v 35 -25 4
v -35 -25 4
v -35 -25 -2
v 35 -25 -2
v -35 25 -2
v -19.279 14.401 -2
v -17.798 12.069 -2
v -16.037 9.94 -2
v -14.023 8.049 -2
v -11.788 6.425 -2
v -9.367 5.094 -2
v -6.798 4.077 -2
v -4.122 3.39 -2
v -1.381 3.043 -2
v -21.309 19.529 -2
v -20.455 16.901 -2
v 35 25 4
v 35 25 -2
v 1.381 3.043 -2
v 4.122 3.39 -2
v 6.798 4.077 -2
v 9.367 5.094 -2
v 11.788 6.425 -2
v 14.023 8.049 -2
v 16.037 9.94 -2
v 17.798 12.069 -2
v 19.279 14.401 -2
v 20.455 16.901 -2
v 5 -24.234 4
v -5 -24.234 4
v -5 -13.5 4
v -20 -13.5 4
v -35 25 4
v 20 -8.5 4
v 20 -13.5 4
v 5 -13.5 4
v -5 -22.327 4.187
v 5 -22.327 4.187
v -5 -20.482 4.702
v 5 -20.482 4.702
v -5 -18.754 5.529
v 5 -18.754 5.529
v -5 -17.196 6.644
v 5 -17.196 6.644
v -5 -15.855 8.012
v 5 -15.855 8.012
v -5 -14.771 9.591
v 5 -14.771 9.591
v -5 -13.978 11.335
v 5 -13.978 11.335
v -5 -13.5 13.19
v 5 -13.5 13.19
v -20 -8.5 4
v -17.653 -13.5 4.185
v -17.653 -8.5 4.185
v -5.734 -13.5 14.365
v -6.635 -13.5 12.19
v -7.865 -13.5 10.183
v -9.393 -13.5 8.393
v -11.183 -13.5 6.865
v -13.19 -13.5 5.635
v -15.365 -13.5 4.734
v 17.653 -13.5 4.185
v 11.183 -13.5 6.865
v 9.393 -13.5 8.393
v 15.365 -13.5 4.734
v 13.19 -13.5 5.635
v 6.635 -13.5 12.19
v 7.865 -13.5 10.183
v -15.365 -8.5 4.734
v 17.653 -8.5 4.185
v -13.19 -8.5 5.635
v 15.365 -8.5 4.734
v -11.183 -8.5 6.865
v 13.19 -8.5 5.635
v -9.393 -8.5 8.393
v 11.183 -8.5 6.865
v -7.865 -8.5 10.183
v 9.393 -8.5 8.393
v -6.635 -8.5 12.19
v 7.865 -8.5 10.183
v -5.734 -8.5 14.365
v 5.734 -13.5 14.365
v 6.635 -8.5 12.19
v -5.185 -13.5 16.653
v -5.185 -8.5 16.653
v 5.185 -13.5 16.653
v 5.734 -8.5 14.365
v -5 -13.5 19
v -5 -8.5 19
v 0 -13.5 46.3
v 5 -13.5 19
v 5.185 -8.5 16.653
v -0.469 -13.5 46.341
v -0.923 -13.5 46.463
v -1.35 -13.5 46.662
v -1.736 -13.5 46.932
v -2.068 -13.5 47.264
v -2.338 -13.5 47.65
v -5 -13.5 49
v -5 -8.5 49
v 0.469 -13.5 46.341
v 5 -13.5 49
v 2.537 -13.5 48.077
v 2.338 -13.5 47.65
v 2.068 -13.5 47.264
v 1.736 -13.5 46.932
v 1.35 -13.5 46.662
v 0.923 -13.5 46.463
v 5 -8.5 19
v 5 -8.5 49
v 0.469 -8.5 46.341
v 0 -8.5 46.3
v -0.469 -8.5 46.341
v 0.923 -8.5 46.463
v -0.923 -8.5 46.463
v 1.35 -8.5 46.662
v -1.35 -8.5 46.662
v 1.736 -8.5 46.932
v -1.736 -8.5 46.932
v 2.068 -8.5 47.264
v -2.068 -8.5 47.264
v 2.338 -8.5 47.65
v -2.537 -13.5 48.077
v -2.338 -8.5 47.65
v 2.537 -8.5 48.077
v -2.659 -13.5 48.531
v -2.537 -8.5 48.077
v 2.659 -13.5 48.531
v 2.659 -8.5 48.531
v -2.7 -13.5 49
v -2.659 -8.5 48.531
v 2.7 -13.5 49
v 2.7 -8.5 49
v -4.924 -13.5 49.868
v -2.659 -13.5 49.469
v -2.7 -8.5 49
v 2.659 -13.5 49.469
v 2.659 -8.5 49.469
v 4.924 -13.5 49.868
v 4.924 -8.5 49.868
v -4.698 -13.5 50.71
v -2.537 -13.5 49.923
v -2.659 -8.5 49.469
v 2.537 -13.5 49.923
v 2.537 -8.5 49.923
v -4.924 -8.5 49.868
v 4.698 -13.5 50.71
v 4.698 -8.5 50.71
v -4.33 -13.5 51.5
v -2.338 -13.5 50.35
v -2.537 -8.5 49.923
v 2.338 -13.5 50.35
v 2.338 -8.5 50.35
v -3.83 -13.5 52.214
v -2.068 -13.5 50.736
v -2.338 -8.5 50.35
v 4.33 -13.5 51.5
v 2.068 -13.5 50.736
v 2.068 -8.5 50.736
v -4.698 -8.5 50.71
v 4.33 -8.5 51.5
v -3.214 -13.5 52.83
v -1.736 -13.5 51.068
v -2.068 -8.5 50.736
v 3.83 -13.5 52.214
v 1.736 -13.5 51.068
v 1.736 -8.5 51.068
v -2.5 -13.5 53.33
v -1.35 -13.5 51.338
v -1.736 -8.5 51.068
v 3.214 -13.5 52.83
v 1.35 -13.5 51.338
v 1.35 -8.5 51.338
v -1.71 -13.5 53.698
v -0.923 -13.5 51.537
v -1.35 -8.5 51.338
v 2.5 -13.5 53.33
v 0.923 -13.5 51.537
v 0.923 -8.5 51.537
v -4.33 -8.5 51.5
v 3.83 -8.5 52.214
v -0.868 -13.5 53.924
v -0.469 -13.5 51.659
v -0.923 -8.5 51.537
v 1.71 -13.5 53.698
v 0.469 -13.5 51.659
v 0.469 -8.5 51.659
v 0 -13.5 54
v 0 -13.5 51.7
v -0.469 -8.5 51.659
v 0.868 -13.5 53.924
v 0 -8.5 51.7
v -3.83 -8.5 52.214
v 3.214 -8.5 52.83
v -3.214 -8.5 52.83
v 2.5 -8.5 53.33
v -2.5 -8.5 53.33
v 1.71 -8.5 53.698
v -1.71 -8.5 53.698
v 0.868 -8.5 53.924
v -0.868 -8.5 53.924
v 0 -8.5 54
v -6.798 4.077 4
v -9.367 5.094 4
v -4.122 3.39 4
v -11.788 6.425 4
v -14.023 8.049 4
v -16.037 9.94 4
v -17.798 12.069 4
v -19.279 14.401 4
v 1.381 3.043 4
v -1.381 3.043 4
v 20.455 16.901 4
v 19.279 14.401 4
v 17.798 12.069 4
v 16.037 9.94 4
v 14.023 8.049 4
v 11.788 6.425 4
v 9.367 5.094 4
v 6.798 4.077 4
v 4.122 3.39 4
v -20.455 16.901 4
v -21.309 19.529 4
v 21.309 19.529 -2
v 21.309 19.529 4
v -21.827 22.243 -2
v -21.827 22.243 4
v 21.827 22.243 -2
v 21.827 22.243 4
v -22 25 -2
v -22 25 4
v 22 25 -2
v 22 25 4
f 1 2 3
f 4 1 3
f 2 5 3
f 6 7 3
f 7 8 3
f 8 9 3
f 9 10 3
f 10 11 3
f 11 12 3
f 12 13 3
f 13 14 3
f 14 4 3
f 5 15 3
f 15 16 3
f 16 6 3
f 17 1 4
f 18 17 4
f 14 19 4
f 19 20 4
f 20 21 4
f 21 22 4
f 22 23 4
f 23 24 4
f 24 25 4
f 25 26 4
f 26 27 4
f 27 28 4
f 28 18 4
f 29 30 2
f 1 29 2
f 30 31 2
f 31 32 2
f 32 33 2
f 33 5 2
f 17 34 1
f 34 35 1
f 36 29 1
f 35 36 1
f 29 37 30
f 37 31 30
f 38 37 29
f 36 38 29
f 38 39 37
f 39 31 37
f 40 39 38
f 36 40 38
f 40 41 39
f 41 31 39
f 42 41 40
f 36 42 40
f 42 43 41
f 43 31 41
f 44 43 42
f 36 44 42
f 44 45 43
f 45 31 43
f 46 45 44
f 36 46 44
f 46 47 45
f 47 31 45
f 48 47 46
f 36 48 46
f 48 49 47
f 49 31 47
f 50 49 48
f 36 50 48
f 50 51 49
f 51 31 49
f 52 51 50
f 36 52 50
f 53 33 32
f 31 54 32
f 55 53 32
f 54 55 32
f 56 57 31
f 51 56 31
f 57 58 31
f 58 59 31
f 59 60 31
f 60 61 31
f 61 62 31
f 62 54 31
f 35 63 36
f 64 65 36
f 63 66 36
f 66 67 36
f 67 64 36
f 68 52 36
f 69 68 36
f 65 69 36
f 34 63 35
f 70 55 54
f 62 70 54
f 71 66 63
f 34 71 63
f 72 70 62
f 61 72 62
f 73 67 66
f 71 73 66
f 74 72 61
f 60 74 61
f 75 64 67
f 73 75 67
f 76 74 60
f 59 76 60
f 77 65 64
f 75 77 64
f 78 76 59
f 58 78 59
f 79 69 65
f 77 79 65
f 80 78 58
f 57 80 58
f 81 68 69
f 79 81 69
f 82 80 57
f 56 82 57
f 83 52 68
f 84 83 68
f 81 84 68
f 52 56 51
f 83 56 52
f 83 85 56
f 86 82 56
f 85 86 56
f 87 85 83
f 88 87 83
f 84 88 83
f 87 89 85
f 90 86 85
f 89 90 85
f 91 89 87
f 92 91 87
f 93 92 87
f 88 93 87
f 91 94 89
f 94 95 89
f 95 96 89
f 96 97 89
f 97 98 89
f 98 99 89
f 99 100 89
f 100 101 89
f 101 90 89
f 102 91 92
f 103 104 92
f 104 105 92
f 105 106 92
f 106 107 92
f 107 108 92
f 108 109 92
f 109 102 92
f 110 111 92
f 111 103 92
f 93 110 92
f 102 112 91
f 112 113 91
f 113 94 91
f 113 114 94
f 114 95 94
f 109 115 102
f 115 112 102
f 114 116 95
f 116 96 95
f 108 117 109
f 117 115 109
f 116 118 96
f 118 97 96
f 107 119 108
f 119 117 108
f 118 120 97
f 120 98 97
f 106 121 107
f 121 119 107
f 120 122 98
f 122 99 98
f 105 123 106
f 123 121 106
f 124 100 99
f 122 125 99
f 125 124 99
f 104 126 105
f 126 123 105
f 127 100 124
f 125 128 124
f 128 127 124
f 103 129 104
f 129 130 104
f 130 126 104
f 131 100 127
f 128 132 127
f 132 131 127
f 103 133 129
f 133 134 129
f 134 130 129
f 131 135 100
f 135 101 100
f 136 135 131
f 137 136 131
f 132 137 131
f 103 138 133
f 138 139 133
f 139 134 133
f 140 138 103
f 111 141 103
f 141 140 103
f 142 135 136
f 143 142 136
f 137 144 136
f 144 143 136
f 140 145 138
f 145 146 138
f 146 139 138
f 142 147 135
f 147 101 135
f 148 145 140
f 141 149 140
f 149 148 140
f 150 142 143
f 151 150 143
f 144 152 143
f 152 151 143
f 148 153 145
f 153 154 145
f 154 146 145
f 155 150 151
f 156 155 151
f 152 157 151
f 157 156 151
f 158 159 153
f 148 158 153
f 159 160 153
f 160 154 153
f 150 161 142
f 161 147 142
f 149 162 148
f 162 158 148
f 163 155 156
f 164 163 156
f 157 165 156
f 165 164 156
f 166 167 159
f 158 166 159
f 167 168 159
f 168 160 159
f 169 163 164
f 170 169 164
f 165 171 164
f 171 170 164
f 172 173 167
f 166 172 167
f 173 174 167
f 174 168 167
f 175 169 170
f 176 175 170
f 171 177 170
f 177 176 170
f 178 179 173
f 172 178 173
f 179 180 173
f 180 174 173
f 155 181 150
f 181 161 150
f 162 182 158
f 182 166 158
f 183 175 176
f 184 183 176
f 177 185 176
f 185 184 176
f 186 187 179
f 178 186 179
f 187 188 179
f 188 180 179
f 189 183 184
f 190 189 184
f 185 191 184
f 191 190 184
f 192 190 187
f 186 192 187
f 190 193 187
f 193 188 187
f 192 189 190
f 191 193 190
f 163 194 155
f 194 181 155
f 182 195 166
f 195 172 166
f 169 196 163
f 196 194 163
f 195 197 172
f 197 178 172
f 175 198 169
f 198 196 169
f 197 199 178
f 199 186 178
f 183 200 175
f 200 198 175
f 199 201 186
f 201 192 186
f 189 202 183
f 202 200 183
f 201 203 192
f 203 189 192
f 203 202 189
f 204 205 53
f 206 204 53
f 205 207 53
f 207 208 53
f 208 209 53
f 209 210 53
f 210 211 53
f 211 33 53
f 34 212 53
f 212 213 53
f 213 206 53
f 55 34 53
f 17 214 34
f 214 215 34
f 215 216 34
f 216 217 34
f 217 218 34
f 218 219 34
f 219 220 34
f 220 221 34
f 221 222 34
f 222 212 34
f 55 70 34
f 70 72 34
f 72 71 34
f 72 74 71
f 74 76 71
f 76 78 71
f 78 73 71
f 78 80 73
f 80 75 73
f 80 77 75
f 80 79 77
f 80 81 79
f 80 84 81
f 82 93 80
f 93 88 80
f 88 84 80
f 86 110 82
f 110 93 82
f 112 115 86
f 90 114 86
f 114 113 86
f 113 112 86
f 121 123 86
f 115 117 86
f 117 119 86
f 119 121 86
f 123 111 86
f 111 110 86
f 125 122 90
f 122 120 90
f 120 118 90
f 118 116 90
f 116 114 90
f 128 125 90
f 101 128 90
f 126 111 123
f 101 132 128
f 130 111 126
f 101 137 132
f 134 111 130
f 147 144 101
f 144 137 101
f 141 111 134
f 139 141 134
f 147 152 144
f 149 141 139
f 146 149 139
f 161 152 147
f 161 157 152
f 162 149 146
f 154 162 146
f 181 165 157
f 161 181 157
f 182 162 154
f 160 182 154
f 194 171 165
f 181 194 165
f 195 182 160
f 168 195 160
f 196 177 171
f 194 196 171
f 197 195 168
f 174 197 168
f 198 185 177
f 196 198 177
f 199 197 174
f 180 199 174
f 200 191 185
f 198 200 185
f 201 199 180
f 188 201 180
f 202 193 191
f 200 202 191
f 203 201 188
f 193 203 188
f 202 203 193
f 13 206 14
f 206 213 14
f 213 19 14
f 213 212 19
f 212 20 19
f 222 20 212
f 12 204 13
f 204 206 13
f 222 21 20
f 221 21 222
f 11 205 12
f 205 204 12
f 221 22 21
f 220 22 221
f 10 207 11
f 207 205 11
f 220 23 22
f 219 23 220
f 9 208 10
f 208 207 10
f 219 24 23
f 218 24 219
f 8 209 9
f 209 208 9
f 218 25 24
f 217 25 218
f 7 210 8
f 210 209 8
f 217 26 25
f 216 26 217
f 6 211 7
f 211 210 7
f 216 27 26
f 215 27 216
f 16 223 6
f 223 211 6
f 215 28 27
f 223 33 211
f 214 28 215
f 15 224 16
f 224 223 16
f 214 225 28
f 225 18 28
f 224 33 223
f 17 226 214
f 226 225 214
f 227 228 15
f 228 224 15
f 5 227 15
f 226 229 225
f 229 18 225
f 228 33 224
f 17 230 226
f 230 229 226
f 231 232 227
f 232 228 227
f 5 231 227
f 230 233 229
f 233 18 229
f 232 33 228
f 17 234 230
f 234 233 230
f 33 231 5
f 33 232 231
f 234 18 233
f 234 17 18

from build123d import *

# Parameters (mm, degrees)
BOSS_EXTRUDE1_DEPTH      = 4
BOSS_EXTRUDE1_DEPTH_BACK = 2
SKETCH2_W                = 10
SKETCH2_H                = 5
BOSS_EXTRUDE2_DEPTH      = 50
FILLET1_RADIUS           = 5
FILLET1_LENGTH           = 5
SKETCH3_R                = 2.7
CUT_EXTRUDE1_DEPTH       = 35
BOSS_EXTRUDE3_DEPTH      = 5
BOSS_EXTRUDE5_START      = -5
BOSS_EXTRUDE5_DEPTH      = 10


# Read off the part's stored shape, not the designer's step: Boss-Extrude5
with BuildPart() as part:
    # Sketch1 → Boss-Extrude1 (new, two sides: drawn at the far end of the back side and taken through both)
    with BuildSketch(Plane.XY.offset(-BOSS_EXTRUDE1_DEPTH_BACK)):
        with BuildLine():
            Line((-35, -25), (35, -25))
            Line((35, -25), (35, 25))
            Line((35, 25), (22, 25))
            ThreePointArc((22, 25), (0, 3), (-22, 25))
            Line((-22, 25), (-35, 25))
            Line((-35, 25), (-35, -25))
        make_face()
    extrude(amount=BOSS_EXTRUDE1_DEPTH + BOSS_EXTRUDE1_DEPTH_BACK)

    # Sketch2 → Boss-Extrude2 (add)
    with BuildSketch(Plane.XY.offset(4)):
        with Locations((0, -11)):
            Rectangle(SKETCH2_W, SKETCH2_H)
    extrude(amount=BOSS_EXTRUDE2_DEPTH)

    # Fillet1: full round fillet: the end face becomes a half cylinder, R = half its width
    fillet1_face = Plane((0, -11, 54), x_dir=(0, -1, 0), z_dir=(0, 0, 1))  # on the end face: x along it, z out of the body
    fillet1_slab = fillet1_face.offset(-FILLET1_RADIUS / 2) * Box(FILLET1_LENGTH, 2 * FILLET1_RADIUS, FILLET1_RADIUS, mode=Mode.PRIVATE)  # the body's end, R deep
    fillet1_round = Plane((0, -11, 49), x_dir=(0, 0, 1), z_dir=(0, -1, 0)) * Cylinder(FILLET1_RADIUS, FILLET1_LENGTH, mode=Mode.PRIVATE)  # its axis R under the face
    add(fillet1_slab - fillet1_round, mode=Mode.SUBTRACT)

    # Sketch3 → Cut-Extrude1 (cut)
    with BuildSketch(Plane(origin=(0, -8.5, 0), x_dir=(1, 0, 0), z_dir=(0, 1, 0))):
        with Locations(Location((0, -49, 0), (0, 0, 180))):
            Circle(SKETCH3_R)
    extrude(amount=-CUT_EXTRUDE1_DEPTH, mode=Mode.SUBTRACT)

    # Sketch6 → Boss-Extrude3 (add)
    with BuildSketch(Plane.XZ.offset(13.5)):
        with BuildLine():
            Line((5, 4), (20, 4))
            ThreePointArc((20, 4), (9.393398282, 8.393398282), (5, 19))
            Line((5, 19), (5, 4))
        make_face()
        with BuildLine():
            Line((-5, 4), (-20, 4))
            ThreePointArc((-20, 4), (-9.393398282, 8.393398282), (-5, 19))
            Line((-5, 19), (-5, 4))
        make_face()
    extrude(amount=-BOSS_EXTRUDE3_DEPTH)

    # Boss-Extrude5 outline → Boss-Extrude5 (add)
    with BuildSketch(Plane(origin=(0, 0, 0), x_dir=(0, 0, -1), z_dir=(1, 0, 0)).offset(BOSS_EXTRUDE5_START)):
        with BuildLine():
            ThreePointArc((-13.190244239, -13.5), (-6.643691612, -17.19601893), (-4, -24.233689133))
            Line((-4, -24.233689133), (-4, -13.5))
            Line((-4, -13.5), (-13.190244239, -13.5))
        make_face()
    extrude(amount=BOSS_EXTRUDE5_DEPTH)


solid = part.part
